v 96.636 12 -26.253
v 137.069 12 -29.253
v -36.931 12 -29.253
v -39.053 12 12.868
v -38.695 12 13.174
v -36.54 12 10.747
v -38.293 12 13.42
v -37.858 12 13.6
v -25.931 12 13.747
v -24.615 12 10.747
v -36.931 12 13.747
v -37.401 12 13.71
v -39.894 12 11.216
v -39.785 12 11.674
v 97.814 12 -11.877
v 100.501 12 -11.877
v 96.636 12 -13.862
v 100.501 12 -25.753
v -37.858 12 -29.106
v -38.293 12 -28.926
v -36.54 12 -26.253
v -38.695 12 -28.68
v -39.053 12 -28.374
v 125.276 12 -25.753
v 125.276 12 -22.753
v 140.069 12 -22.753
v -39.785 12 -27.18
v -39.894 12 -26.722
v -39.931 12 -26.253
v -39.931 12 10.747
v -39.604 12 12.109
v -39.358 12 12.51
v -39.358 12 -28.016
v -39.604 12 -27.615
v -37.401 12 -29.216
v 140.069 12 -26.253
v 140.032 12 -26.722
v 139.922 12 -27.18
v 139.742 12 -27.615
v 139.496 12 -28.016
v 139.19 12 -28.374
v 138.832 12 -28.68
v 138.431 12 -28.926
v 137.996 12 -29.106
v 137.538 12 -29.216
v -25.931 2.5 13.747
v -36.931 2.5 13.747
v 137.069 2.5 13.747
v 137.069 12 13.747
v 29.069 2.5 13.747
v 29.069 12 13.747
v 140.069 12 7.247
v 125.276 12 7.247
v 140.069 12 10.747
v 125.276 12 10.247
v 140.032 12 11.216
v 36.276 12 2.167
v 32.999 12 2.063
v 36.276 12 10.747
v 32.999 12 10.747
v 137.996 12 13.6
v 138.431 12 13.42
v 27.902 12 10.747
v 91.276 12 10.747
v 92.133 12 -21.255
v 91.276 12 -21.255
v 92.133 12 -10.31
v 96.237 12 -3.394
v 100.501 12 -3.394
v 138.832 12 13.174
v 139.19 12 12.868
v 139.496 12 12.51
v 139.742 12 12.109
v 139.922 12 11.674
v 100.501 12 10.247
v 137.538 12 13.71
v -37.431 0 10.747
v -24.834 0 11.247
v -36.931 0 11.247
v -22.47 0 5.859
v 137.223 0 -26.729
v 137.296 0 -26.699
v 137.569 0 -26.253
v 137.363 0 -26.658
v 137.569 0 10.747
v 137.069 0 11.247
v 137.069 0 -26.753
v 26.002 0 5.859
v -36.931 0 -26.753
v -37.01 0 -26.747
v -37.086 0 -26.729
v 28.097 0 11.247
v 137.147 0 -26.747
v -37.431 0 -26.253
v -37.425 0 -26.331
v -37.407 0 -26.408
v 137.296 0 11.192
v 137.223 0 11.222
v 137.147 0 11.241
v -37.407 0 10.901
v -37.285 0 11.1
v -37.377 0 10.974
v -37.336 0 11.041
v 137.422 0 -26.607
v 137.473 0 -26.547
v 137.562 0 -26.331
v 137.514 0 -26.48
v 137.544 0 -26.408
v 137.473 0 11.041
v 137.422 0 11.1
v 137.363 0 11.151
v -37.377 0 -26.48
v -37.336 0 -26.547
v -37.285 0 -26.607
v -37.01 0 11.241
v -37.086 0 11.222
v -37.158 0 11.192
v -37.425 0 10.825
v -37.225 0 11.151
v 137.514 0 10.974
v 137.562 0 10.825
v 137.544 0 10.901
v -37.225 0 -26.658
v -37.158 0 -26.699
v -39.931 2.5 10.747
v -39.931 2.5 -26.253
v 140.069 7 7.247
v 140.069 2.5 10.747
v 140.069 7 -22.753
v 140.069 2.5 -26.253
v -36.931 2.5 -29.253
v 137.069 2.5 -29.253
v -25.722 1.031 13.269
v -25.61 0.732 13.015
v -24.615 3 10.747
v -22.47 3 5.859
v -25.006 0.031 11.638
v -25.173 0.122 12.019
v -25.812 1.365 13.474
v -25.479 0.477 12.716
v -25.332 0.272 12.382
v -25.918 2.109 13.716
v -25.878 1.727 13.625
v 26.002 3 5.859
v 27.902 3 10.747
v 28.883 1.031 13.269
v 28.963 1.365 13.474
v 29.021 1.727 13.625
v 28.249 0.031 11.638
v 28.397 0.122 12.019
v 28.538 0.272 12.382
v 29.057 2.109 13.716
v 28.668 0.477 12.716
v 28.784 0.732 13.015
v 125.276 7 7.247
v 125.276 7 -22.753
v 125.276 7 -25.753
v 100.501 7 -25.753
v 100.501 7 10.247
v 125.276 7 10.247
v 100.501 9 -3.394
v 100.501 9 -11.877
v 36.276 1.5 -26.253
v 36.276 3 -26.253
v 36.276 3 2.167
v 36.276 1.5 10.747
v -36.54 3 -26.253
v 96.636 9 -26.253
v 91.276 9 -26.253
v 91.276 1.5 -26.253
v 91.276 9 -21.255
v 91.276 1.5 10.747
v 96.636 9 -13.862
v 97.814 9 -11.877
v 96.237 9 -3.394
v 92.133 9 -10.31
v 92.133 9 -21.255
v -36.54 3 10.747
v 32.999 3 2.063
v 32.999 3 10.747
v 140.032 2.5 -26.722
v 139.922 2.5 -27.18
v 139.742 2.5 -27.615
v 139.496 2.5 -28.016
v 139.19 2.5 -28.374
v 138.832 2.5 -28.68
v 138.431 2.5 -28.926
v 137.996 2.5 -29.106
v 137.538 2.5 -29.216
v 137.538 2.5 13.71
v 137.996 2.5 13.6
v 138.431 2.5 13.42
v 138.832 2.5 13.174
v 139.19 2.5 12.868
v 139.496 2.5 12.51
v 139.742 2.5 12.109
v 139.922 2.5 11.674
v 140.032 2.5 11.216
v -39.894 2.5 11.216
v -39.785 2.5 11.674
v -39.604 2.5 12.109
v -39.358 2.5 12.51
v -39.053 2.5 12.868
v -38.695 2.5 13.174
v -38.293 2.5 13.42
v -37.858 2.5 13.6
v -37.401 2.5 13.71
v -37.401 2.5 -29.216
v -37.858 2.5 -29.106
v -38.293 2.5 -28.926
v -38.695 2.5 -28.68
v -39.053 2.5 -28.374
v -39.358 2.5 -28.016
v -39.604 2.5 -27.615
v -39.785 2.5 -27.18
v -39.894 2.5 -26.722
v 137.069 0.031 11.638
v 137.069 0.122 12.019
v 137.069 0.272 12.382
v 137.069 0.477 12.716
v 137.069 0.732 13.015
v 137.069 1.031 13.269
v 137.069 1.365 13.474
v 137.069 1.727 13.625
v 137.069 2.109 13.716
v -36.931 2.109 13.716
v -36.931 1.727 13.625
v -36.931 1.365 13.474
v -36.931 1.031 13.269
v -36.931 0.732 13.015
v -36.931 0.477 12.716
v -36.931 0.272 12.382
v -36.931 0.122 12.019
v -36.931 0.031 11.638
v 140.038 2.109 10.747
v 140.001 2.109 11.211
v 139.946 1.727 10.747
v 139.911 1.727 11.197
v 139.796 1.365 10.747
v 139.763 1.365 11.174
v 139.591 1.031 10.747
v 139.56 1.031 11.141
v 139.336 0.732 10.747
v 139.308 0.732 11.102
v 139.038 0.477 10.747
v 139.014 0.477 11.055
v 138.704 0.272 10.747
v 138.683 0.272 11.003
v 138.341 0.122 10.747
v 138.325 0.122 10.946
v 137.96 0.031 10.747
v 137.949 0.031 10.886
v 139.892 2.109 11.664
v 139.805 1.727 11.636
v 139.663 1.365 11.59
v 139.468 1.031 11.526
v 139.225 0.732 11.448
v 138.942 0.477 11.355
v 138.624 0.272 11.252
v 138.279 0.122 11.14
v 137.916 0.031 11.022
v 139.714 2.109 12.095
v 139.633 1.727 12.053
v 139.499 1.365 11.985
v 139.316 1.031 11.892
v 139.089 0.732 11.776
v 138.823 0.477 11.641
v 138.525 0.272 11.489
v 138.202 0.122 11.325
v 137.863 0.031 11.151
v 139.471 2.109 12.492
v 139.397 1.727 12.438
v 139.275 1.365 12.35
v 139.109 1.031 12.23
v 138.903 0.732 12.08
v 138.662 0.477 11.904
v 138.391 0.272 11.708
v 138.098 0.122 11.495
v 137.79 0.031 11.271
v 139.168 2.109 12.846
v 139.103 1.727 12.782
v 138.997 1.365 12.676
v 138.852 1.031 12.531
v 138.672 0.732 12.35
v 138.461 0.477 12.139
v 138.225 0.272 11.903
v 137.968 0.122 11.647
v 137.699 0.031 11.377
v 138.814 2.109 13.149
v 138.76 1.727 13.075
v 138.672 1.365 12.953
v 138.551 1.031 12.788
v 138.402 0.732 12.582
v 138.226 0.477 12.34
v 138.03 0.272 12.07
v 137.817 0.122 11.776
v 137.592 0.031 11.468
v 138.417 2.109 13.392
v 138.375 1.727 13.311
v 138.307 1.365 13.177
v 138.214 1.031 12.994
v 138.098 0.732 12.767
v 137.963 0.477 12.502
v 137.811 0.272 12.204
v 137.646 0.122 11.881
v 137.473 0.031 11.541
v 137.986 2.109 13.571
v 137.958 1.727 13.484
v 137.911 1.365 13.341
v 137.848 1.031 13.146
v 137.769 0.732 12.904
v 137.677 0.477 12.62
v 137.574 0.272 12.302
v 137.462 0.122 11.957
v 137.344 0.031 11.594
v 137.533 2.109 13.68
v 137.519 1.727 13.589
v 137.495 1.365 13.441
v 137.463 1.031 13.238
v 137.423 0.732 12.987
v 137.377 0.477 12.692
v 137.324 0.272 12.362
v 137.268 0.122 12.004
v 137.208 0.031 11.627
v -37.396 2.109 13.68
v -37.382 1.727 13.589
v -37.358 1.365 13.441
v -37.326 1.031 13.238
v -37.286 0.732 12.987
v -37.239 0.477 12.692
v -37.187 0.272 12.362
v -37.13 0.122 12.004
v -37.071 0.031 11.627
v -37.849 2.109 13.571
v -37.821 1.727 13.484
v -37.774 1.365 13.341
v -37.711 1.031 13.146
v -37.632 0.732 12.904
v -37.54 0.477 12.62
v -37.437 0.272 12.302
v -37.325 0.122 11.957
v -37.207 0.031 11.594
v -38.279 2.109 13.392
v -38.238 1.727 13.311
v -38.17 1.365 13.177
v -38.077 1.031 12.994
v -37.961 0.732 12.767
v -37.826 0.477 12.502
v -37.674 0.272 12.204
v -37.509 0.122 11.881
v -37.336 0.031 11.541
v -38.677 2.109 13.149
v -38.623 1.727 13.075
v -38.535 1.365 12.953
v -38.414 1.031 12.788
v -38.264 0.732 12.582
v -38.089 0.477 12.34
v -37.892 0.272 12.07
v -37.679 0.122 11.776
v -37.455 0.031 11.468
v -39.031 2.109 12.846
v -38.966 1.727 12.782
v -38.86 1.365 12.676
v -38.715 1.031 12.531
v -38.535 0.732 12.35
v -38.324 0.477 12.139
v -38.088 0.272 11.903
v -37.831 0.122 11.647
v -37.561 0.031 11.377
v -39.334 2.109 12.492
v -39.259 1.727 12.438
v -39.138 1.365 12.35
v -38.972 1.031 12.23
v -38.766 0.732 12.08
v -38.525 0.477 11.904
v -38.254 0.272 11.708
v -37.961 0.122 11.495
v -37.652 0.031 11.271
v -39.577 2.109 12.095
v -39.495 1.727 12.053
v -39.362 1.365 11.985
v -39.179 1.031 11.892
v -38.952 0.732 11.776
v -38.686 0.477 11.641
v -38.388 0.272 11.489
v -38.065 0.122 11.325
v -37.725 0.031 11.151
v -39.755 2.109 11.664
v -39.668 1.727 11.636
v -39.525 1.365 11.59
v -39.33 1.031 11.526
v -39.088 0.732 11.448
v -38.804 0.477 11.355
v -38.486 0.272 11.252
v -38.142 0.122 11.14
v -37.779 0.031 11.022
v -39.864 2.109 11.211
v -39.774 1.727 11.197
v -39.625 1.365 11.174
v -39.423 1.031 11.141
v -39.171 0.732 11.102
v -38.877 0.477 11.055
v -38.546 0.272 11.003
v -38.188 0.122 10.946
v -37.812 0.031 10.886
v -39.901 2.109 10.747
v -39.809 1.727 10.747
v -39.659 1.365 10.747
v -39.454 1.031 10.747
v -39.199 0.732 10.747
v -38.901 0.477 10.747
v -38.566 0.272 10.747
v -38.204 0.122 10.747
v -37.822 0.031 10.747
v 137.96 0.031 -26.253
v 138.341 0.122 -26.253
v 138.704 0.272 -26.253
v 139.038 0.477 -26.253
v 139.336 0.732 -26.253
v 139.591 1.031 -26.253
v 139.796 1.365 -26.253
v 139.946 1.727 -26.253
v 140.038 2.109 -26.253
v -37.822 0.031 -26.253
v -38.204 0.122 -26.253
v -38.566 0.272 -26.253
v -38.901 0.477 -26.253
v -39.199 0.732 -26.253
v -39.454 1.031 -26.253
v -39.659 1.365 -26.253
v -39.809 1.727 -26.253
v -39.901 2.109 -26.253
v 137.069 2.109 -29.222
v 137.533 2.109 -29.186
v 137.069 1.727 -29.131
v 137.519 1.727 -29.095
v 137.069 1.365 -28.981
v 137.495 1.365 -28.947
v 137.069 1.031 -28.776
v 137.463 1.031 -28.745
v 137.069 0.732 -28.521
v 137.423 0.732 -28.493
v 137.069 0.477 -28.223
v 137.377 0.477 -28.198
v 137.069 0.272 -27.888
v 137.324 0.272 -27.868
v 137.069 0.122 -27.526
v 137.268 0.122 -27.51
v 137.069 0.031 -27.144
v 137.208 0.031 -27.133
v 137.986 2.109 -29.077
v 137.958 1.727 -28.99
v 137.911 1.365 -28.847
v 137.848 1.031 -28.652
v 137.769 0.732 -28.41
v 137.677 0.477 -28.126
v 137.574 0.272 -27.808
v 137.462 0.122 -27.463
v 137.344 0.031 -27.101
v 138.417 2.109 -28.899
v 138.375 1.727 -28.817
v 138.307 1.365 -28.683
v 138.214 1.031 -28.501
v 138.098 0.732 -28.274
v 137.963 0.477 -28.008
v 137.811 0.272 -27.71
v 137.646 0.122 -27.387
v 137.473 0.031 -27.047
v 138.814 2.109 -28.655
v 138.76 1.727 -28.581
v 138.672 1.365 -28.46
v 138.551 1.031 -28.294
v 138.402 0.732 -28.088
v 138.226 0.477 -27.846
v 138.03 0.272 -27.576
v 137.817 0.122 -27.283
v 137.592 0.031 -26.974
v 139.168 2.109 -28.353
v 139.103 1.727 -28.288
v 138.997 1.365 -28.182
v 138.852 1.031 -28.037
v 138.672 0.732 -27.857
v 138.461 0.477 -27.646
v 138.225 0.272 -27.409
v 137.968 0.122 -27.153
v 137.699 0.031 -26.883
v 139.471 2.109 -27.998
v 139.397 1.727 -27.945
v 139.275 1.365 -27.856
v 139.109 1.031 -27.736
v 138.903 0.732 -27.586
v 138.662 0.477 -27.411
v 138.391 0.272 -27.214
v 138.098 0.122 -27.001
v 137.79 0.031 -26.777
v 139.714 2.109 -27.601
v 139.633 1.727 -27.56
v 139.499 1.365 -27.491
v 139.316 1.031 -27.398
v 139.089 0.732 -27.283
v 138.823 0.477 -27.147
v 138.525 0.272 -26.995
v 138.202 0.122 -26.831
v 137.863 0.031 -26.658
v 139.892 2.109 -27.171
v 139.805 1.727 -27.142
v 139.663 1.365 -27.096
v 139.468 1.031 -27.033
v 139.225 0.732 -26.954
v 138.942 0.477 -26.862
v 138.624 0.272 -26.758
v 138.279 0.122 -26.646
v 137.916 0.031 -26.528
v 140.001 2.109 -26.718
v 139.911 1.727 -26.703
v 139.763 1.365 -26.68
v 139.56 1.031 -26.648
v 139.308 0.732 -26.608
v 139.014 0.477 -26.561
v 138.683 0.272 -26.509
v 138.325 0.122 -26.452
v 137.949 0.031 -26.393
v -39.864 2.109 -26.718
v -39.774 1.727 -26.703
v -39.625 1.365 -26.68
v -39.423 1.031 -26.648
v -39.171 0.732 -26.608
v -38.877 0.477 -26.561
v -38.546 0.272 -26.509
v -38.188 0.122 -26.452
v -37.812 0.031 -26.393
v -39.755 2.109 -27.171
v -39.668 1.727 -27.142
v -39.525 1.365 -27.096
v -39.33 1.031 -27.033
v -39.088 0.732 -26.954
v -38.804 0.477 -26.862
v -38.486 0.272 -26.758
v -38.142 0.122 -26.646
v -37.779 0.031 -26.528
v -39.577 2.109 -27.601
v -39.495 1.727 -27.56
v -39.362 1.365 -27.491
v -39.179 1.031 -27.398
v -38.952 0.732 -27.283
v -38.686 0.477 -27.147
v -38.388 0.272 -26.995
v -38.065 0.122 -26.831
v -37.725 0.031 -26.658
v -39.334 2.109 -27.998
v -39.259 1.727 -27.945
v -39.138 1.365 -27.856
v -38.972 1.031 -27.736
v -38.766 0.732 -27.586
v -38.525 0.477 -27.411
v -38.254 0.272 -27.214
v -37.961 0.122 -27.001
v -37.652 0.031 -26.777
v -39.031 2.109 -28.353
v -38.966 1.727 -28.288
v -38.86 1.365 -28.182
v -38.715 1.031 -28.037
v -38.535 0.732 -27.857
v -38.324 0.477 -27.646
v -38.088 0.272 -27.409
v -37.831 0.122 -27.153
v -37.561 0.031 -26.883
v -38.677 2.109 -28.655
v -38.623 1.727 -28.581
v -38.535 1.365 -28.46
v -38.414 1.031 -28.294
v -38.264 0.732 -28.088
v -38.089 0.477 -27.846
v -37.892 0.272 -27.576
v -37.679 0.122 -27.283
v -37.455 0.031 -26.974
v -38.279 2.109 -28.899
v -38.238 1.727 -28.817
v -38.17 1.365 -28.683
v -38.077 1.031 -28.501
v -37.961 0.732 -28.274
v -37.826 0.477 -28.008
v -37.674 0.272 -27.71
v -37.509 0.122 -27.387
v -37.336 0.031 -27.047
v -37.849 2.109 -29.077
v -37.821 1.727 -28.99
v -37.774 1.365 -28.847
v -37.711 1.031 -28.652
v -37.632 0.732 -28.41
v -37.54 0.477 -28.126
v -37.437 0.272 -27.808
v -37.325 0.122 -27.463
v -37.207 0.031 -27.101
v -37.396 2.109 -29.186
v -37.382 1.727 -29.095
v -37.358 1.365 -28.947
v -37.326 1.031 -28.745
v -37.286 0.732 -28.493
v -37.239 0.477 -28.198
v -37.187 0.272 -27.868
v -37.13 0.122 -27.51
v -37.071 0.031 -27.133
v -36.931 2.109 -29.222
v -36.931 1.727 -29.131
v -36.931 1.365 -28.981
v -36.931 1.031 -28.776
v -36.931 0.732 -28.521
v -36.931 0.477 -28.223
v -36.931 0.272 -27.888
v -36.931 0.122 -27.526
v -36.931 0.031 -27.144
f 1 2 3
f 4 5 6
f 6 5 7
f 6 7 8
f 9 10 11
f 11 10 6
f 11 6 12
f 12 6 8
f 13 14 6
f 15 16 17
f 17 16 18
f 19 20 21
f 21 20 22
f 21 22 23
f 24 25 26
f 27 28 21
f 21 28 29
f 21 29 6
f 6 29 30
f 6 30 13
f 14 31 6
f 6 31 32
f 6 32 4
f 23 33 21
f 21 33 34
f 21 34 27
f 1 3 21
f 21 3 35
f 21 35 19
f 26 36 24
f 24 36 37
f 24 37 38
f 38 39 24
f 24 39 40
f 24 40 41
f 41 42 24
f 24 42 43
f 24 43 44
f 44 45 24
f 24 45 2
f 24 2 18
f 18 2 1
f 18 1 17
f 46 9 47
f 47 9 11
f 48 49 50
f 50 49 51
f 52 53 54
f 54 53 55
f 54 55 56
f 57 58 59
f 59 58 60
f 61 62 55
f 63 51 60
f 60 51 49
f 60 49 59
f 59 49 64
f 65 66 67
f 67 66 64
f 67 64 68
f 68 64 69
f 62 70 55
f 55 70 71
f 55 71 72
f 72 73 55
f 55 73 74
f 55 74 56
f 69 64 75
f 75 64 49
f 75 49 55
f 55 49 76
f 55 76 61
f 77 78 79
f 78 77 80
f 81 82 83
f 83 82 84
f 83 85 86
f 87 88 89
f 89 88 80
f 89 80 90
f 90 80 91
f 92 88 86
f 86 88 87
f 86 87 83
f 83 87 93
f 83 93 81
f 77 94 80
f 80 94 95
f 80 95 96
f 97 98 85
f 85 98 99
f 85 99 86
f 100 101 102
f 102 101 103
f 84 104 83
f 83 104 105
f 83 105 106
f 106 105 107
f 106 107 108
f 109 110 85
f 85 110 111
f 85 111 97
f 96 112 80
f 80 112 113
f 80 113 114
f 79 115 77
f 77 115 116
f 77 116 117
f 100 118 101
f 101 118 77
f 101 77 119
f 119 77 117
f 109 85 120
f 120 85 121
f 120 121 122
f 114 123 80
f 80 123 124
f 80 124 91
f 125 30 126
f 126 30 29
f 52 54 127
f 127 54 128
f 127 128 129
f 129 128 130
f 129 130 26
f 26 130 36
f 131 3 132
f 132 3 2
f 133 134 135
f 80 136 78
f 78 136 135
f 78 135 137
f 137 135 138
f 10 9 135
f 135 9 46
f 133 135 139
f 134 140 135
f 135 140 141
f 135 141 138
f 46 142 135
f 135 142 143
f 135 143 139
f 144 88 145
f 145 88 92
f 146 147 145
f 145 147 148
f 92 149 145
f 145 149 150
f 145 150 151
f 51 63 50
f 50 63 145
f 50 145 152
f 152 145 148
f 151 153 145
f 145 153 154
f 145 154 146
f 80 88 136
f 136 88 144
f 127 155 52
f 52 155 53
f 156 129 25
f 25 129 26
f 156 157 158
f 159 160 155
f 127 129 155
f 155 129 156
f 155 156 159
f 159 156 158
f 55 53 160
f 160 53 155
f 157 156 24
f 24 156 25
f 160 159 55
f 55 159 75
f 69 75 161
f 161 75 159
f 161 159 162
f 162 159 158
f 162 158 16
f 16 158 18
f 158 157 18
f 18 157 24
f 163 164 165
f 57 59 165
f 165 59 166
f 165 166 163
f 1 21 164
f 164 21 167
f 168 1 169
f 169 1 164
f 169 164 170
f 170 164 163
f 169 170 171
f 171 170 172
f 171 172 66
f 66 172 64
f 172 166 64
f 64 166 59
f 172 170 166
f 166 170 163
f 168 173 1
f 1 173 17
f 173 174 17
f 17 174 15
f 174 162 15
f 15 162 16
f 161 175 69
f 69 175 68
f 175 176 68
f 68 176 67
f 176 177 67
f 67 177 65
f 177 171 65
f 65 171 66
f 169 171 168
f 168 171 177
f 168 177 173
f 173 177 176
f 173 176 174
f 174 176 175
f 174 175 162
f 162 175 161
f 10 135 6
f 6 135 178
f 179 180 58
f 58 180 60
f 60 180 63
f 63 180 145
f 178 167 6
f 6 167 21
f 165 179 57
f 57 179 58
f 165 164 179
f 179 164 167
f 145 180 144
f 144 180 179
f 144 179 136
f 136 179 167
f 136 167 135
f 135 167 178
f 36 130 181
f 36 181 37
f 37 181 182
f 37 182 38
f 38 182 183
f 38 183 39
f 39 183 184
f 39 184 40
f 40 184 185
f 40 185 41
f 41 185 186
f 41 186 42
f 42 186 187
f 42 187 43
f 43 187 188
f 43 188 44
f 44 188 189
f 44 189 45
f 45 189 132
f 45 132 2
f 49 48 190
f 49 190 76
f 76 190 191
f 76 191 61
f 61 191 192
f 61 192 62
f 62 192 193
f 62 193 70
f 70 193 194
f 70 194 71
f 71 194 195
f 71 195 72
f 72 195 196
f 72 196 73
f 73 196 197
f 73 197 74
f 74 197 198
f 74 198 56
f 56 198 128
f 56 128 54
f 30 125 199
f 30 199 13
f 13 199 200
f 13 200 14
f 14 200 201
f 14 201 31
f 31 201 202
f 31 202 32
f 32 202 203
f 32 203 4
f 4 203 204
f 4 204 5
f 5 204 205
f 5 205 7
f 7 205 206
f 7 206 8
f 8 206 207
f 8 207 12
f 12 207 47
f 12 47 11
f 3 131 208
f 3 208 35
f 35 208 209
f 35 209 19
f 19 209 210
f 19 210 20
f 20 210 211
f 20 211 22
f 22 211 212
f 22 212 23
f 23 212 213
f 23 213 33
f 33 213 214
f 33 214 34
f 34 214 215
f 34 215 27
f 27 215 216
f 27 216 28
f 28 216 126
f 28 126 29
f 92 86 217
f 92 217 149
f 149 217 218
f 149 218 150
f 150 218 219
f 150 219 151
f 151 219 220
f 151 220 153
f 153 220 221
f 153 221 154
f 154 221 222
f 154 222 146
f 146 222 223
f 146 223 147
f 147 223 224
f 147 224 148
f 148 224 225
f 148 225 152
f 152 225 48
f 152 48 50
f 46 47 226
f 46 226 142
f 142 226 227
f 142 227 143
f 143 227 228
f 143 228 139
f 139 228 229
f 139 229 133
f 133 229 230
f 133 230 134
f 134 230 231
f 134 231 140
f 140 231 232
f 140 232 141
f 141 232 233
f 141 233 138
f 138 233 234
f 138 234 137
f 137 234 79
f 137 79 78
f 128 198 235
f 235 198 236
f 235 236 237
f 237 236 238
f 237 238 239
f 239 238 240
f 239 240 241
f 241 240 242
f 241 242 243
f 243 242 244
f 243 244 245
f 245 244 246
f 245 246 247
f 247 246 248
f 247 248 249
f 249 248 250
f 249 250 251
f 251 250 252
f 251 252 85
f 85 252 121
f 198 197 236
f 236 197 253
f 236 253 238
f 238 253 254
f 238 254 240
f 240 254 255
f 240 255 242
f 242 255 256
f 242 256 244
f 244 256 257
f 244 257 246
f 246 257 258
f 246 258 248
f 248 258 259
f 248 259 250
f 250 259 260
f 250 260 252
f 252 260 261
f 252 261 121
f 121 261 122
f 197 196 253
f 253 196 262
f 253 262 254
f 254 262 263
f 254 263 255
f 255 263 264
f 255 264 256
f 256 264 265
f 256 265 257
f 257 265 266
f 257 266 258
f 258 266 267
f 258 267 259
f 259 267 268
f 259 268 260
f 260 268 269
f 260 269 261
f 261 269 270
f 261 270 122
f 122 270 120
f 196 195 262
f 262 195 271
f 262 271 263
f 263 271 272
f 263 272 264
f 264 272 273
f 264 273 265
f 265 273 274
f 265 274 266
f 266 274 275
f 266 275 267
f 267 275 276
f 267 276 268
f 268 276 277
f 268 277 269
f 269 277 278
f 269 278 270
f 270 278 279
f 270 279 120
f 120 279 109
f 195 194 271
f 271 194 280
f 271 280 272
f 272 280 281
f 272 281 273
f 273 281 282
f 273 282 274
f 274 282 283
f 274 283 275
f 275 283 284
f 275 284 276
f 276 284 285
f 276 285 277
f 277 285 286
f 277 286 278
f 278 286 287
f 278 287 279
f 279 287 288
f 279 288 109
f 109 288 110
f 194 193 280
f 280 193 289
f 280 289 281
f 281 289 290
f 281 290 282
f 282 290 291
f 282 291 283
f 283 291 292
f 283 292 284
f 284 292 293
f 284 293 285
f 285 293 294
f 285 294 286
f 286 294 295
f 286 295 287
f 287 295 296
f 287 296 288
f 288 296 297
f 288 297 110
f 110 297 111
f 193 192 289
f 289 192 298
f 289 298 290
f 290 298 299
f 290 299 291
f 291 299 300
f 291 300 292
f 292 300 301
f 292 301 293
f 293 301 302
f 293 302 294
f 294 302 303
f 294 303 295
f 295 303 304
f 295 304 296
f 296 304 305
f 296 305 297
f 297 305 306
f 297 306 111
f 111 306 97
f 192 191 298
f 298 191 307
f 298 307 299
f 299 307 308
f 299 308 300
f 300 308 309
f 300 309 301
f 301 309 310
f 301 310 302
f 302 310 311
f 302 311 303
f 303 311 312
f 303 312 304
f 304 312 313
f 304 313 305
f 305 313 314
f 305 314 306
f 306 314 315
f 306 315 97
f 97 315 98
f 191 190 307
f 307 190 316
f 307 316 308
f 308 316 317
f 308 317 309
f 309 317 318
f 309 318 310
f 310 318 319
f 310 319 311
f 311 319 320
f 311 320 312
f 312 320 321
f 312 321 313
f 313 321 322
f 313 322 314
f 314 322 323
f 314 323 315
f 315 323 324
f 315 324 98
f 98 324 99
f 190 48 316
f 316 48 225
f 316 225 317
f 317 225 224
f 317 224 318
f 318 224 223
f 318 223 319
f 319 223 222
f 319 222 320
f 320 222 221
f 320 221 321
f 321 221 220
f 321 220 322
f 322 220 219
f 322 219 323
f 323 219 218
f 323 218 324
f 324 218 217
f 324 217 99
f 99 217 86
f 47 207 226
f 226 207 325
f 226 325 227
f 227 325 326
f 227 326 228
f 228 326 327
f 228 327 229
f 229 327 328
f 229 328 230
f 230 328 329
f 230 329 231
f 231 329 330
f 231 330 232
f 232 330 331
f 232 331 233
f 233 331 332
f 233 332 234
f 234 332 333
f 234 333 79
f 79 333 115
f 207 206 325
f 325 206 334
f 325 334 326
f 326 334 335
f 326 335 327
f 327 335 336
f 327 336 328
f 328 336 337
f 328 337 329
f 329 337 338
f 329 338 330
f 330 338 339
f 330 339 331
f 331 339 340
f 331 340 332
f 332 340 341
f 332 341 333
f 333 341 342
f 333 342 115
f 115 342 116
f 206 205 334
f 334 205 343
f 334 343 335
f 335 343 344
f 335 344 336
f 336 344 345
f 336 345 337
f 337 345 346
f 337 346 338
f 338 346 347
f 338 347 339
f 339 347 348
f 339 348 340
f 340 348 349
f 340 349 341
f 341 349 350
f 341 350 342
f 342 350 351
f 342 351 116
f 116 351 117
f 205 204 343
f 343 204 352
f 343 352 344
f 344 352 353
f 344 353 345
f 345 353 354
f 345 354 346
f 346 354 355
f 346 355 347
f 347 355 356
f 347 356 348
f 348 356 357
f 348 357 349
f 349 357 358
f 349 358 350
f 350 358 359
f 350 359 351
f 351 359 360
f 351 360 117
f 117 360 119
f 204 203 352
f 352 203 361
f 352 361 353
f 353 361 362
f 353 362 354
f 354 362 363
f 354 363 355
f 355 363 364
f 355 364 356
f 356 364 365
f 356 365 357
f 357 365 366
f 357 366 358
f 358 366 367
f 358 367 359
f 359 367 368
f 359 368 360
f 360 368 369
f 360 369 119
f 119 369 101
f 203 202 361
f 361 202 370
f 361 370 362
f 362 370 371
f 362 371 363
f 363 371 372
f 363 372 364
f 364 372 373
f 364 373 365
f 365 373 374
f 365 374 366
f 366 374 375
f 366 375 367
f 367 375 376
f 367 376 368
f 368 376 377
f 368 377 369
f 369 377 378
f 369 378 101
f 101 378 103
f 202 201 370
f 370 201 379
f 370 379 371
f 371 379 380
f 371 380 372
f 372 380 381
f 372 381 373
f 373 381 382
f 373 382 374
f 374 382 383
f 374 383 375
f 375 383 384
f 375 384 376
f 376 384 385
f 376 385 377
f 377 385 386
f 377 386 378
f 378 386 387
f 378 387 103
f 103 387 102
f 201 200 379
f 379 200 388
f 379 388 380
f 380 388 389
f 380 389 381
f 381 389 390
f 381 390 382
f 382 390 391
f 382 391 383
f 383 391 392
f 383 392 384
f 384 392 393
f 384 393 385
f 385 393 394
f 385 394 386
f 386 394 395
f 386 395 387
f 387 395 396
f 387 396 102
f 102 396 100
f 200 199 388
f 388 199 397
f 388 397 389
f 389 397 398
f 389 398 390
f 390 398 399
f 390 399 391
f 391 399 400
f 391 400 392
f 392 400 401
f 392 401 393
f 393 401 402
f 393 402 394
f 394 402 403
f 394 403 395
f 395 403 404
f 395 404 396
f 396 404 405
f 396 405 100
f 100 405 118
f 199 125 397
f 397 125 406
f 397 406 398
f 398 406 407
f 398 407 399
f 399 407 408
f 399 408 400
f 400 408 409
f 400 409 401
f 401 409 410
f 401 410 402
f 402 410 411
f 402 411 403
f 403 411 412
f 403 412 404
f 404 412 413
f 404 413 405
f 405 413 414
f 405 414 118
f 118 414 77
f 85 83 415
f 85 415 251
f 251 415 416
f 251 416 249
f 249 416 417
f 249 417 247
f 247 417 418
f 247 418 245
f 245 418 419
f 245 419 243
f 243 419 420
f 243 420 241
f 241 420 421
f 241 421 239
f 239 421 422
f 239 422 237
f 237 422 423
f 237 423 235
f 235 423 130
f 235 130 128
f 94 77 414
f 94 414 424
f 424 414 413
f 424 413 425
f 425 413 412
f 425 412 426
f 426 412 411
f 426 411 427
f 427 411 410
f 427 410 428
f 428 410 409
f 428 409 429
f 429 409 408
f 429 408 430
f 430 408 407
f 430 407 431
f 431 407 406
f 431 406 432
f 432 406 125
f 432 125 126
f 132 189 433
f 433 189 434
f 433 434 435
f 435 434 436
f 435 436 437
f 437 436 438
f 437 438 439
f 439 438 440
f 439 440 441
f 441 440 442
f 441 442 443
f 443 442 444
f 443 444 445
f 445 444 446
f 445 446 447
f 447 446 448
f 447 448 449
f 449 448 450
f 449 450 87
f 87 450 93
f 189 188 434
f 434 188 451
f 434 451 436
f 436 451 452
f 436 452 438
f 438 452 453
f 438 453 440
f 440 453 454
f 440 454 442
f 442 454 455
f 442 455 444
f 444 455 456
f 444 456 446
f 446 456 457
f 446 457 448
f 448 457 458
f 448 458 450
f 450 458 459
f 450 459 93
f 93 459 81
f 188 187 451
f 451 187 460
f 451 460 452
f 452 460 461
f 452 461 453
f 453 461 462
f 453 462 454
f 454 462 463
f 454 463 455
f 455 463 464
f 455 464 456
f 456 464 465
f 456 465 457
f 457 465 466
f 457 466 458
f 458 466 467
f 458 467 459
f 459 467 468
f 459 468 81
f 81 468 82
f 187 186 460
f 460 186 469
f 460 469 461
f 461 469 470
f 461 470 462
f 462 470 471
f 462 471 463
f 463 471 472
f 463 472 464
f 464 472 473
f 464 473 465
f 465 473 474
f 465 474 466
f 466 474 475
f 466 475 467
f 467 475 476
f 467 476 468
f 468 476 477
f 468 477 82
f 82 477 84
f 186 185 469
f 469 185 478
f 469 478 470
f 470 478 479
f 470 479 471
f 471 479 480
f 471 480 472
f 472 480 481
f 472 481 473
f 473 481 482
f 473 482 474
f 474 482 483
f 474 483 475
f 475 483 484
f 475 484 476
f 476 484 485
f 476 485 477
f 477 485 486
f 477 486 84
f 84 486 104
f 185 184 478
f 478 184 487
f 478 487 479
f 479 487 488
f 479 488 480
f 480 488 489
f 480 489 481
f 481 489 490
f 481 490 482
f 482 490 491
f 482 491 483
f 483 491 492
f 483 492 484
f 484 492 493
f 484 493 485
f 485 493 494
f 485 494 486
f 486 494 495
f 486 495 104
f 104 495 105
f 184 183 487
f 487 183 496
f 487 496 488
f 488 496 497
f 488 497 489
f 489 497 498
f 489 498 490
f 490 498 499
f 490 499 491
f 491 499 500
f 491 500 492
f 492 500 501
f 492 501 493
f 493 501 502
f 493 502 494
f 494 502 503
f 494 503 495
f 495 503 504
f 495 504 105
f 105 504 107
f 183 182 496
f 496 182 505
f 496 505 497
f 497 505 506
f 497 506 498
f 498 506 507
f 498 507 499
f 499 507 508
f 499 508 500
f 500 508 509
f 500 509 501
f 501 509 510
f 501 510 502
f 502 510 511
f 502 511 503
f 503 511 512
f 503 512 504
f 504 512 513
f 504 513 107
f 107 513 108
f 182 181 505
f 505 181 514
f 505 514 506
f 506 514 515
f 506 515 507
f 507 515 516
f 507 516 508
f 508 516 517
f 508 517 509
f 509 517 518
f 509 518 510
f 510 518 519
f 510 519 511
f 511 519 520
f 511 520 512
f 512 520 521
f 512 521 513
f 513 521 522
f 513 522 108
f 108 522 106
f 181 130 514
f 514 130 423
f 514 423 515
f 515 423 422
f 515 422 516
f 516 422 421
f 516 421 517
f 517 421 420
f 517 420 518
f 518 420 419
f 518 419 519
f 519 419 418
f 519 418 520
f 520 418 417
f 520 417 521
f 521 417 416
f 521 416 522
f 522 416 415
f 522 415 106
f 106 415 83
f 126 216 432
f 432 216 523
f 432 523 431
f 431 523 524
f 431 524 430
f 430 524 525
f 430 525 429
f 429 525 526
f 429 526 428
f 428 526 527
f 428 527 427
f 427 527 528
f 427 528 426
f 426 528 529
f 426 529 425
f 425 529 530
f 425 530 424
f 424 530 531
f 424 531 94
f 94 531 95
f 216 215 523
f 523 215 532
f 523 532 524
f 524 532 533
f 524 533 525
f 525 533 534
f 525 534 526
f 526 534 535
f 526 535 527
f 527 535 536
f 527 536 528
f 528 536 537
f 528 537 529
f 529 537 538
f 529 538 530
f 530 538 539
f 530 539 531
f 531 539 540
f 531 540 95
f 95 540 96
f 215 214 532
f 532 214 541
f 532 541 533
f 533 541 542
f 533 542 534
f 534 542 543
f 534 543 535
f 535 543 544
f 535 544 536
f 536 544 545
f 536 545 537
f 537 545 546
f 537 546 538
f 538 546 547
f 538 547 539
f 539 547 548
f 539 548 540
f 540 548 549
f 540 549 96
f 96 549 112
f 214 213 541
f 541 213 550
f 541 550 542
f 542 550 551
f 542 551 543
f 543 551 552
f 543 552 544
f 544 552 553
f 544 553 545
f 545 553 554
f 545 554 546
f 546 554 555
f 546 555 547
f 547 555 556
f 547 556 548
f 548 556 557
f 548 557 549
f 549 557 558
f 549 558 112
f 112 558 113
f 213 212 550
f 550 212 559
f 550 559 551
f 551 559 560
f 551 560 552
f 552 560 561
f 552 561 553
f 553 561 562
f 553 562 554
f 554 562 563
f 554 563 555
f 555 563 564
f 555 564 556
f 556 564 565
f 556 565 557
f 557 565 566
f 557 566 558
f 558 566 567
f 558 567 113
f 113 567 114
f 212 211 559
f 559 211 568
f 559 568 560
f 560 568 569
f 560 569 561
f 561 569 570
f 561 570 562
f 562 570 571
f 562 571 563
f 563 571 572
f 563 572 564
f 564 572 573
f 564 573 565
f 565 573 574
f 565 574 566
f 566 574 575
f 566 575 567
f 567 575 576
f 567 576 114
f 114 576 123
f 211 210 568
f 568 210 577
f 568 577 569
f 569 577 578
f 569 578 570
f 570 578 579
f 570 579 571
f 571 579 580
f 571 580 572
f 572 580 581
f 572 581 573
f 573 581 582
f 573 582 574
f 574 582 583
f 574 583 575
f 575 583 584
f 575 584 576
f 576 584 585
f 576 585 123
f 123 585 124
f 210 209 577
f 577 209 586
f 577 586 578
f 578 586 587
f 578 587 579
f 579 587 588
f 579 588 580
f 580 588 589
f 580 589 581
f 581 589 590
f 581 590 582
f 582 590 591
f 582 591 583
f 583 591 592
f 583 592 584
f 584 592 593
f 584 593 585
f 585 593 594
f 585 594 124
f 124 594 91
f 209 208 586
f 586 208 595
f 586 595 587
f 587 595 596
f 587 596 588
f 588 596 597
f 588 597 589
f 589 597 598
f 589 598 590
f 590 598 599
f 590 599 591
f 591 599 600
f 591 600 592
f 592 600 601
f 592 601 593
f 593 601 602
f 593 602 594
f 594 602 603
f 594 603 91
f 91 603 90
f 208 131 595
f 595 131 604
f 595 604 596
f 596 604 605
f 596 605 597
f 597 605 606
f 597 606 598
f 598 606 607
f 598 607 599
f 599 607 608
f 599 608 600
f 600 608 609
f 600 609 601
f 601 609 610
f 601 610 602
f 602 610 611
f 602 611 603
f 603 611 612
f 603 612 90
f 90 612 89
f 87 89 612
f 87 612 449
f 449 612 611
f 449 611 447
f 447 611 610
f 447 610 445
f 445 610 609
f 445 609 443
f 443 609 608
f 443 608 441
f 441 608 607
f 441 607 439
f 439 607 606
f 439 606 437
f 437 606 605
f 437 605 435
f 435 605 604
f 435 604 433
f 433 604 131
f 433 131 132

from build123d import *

# Parameters (mm, degrees)
SKETCH_3_W          = 180
SKETCH_3_H          = 43
EXTRUDE_1_DEPTH     = 12
CUT_EXTRUDE_1_DEPTH = 52
CUT_EXTRUDE_2_DEPTH = 5
CUT_EXTRUDE_3_DEPTH = 5
SKETCH_8_W          = 55
SKETCH_8_H          = 37
CUT_EXTRUDE_4_DEPTH = 10.5
CUT_EXTRUDE_5_DEPTH = 3
SKETCH_10_W         = 62.128790526
SKETCH_10_H         = 8.683746703
CUT_EXTRUDE_6_DEPTH = 8
CUT_EXTRUDE_8_DEPTH = 9
FILLET_3_R          = 3
FILLET_4_R          = 2.5


with BuildPart() as part:
    # 草图3 → 凸台-拉伸1 (new body)
    with BuildSketch(Plane(origin=(0, 0, 0), x_dir=(1, 0, 0), z_dir=(0, 1, 0))):
        with Locations((50.068597249, 7.753123643)):
            Rectangle(SKETCH_3_W, SKETCH_3_H)
    extrude(amount=EXTRUDE_1_DEPTH)

    # 草图4 → 切除-拉伸1 (cut)
    with BuildSketch(Plane(origin=(0, 0, 0), x_dir=(1, 0, 0), z_dir=(0, 1, 0))):
        Polygon((-22.469613434, -5.858946979), (26.002261286, -5.858946979), (29.068597249, -13.746876357), (-25.931402751, -13.746876357), align=None)
    extrude(amount=CUT_EXTRUDE_1_DEPTH, mode=Mode.SUBTRACT)

    # 草图5 → 切除-拉伸2 (cut)
    with BuildSketch(Plane(origin=(0, 12, 0), x_dir=(1, 0, 0), z_dir=(0, 1, 0))):
        Polygon((140.068597249, 7.753123643), (140.068597249, 22.753123643), (125.276479966, 22.753123643), (125.276479966, -7.246876357), (140.068597249, -7.246876357), align=None)
    extrude(amount=-CUT_EXTRUDE_2_DEPTH, mode=Mode.SUBTRACT)

    # 草图7 → 切除-拉伸3 (cut)
    with BuildSketch(Plane(origin=(0, 12, 0), x_dir=(1, 0, 0), z_dir=(0, 1, 0))):
        Polygon((125.276479966, 7.753123643), (125.276479966, 25.753123643), (100.500825538, 25.753123643), (100.500825538, -10.246876357), (125.276479966, -10.246876357), align=None)
    extrude(amount=-CUT_EXTRUDE_3_DEPTH, mode=Mode.SUBTRACT)

    # 草图8 → 切除-拉伸4 (cut)
    with BuildSketch(Plane(origin=(0, 12, 0), x_dir=(1, 0, 0), z_dir=(0, 1, 0))):
        with Locations((63.776287419, 7.753123643)):
            Rectangle(SKETCH_8_W, SKETCH_8_H)
    extrude(amount=-CUT_EXTRUDE_4_DEPTH, mode=Mode.SUBTRACT)

    # 草图9 → 切除-拉伸5 (cut)
    with BuildSketch(Plane(origin=(0, 12, 0), x_dir=(1, 0, 0), z_dir=(0, 1, 0))):
        Polygon((91.276287419, 26.253123643), (96.635770173, 26.253123643), (96.635770173, 22.130591531), (96.635770173, 13.862098754), (97.813575381, 11.877191358), (100.500825538, 11.877191358), (100.500825538, 3.393971617), (96.236747254, 3.393971617), (92.132656028, 10.310430274), (92.132656028, 21.255120764), (91.276287419, 21.255120764), align=None)
    extrude(amount=-CUT_EXTRUDE_5_DEPTH, mode=Mode.SUBTRACT)

    # 草图10 → 切除-拉伸6 (cut)
    with BuildSketch(Plane(origin=(0, 12, 0), x_dir=(1, 0, 0), z_dir=(0, 1, 0))):
        with Locations((1.934159822, -6.405003006)):
            Rectangle(SKETCH_10_W, SKETCH_10_H)
    extrude(amount=-CUT_EXTRUDE_6_DEPTH, mode=Mode.SUBTRACT)

    # 草图11 → 切除-拉伸8 (cut)
    with BuildSketch(Plane(origin=(0, 12, 0), x_dir=(1, 0, 0), z_dir=(0, 1, 0))):
        Polygon((32.998555085, -10.746876357), (-36.5396752, -10.746876357), (-36.5396752, 26.253123643), (36.276287419, 26.253123643), (36.276287419, -2.167243749), (32.998555085, -2.063129654), align=None)
    extrude(amount=-CUT_EXTRUDE_8_DEPTH, mode=Mode.SUBTRACT)

    # 圆角3
    fillet_3_edges = [part.edges().sort_by_distance(p)[0] for p in [
        (-39.931402751, 6, -29.253123643),
        (140.068597249, 6, -29.253123643),
        (140.068597249, 6, 13.746876357),
        (-39.931402751, 6, 13.746876357),
    ]]
    fillet(fillet_3_edges, radius=FILLET_3_R)

    # 圆角4
    fillet_4_edges = [part.edges().sort_by_distance(p)[0] for p in [
        (83.068597249, 0, 13.746876357),
        (50.068597249, 0, -29.253123643),
        (-31.431402751, 0, 13.746876357),
        (-39.931402751, 0, -7.753123643),
        (140.068597249, 0, -7.753123643),
        (-39.052723094, 0, -28.374443987),
        (-39.052723094, 0, 12.8681967),
        (139.189917593, 0, 12.8681967),
        (139.189917593, 0, -28.374443987),
    ]]
    fillet(fillet_4_edges, radius=FILLET_4_R)


solid = part.part
